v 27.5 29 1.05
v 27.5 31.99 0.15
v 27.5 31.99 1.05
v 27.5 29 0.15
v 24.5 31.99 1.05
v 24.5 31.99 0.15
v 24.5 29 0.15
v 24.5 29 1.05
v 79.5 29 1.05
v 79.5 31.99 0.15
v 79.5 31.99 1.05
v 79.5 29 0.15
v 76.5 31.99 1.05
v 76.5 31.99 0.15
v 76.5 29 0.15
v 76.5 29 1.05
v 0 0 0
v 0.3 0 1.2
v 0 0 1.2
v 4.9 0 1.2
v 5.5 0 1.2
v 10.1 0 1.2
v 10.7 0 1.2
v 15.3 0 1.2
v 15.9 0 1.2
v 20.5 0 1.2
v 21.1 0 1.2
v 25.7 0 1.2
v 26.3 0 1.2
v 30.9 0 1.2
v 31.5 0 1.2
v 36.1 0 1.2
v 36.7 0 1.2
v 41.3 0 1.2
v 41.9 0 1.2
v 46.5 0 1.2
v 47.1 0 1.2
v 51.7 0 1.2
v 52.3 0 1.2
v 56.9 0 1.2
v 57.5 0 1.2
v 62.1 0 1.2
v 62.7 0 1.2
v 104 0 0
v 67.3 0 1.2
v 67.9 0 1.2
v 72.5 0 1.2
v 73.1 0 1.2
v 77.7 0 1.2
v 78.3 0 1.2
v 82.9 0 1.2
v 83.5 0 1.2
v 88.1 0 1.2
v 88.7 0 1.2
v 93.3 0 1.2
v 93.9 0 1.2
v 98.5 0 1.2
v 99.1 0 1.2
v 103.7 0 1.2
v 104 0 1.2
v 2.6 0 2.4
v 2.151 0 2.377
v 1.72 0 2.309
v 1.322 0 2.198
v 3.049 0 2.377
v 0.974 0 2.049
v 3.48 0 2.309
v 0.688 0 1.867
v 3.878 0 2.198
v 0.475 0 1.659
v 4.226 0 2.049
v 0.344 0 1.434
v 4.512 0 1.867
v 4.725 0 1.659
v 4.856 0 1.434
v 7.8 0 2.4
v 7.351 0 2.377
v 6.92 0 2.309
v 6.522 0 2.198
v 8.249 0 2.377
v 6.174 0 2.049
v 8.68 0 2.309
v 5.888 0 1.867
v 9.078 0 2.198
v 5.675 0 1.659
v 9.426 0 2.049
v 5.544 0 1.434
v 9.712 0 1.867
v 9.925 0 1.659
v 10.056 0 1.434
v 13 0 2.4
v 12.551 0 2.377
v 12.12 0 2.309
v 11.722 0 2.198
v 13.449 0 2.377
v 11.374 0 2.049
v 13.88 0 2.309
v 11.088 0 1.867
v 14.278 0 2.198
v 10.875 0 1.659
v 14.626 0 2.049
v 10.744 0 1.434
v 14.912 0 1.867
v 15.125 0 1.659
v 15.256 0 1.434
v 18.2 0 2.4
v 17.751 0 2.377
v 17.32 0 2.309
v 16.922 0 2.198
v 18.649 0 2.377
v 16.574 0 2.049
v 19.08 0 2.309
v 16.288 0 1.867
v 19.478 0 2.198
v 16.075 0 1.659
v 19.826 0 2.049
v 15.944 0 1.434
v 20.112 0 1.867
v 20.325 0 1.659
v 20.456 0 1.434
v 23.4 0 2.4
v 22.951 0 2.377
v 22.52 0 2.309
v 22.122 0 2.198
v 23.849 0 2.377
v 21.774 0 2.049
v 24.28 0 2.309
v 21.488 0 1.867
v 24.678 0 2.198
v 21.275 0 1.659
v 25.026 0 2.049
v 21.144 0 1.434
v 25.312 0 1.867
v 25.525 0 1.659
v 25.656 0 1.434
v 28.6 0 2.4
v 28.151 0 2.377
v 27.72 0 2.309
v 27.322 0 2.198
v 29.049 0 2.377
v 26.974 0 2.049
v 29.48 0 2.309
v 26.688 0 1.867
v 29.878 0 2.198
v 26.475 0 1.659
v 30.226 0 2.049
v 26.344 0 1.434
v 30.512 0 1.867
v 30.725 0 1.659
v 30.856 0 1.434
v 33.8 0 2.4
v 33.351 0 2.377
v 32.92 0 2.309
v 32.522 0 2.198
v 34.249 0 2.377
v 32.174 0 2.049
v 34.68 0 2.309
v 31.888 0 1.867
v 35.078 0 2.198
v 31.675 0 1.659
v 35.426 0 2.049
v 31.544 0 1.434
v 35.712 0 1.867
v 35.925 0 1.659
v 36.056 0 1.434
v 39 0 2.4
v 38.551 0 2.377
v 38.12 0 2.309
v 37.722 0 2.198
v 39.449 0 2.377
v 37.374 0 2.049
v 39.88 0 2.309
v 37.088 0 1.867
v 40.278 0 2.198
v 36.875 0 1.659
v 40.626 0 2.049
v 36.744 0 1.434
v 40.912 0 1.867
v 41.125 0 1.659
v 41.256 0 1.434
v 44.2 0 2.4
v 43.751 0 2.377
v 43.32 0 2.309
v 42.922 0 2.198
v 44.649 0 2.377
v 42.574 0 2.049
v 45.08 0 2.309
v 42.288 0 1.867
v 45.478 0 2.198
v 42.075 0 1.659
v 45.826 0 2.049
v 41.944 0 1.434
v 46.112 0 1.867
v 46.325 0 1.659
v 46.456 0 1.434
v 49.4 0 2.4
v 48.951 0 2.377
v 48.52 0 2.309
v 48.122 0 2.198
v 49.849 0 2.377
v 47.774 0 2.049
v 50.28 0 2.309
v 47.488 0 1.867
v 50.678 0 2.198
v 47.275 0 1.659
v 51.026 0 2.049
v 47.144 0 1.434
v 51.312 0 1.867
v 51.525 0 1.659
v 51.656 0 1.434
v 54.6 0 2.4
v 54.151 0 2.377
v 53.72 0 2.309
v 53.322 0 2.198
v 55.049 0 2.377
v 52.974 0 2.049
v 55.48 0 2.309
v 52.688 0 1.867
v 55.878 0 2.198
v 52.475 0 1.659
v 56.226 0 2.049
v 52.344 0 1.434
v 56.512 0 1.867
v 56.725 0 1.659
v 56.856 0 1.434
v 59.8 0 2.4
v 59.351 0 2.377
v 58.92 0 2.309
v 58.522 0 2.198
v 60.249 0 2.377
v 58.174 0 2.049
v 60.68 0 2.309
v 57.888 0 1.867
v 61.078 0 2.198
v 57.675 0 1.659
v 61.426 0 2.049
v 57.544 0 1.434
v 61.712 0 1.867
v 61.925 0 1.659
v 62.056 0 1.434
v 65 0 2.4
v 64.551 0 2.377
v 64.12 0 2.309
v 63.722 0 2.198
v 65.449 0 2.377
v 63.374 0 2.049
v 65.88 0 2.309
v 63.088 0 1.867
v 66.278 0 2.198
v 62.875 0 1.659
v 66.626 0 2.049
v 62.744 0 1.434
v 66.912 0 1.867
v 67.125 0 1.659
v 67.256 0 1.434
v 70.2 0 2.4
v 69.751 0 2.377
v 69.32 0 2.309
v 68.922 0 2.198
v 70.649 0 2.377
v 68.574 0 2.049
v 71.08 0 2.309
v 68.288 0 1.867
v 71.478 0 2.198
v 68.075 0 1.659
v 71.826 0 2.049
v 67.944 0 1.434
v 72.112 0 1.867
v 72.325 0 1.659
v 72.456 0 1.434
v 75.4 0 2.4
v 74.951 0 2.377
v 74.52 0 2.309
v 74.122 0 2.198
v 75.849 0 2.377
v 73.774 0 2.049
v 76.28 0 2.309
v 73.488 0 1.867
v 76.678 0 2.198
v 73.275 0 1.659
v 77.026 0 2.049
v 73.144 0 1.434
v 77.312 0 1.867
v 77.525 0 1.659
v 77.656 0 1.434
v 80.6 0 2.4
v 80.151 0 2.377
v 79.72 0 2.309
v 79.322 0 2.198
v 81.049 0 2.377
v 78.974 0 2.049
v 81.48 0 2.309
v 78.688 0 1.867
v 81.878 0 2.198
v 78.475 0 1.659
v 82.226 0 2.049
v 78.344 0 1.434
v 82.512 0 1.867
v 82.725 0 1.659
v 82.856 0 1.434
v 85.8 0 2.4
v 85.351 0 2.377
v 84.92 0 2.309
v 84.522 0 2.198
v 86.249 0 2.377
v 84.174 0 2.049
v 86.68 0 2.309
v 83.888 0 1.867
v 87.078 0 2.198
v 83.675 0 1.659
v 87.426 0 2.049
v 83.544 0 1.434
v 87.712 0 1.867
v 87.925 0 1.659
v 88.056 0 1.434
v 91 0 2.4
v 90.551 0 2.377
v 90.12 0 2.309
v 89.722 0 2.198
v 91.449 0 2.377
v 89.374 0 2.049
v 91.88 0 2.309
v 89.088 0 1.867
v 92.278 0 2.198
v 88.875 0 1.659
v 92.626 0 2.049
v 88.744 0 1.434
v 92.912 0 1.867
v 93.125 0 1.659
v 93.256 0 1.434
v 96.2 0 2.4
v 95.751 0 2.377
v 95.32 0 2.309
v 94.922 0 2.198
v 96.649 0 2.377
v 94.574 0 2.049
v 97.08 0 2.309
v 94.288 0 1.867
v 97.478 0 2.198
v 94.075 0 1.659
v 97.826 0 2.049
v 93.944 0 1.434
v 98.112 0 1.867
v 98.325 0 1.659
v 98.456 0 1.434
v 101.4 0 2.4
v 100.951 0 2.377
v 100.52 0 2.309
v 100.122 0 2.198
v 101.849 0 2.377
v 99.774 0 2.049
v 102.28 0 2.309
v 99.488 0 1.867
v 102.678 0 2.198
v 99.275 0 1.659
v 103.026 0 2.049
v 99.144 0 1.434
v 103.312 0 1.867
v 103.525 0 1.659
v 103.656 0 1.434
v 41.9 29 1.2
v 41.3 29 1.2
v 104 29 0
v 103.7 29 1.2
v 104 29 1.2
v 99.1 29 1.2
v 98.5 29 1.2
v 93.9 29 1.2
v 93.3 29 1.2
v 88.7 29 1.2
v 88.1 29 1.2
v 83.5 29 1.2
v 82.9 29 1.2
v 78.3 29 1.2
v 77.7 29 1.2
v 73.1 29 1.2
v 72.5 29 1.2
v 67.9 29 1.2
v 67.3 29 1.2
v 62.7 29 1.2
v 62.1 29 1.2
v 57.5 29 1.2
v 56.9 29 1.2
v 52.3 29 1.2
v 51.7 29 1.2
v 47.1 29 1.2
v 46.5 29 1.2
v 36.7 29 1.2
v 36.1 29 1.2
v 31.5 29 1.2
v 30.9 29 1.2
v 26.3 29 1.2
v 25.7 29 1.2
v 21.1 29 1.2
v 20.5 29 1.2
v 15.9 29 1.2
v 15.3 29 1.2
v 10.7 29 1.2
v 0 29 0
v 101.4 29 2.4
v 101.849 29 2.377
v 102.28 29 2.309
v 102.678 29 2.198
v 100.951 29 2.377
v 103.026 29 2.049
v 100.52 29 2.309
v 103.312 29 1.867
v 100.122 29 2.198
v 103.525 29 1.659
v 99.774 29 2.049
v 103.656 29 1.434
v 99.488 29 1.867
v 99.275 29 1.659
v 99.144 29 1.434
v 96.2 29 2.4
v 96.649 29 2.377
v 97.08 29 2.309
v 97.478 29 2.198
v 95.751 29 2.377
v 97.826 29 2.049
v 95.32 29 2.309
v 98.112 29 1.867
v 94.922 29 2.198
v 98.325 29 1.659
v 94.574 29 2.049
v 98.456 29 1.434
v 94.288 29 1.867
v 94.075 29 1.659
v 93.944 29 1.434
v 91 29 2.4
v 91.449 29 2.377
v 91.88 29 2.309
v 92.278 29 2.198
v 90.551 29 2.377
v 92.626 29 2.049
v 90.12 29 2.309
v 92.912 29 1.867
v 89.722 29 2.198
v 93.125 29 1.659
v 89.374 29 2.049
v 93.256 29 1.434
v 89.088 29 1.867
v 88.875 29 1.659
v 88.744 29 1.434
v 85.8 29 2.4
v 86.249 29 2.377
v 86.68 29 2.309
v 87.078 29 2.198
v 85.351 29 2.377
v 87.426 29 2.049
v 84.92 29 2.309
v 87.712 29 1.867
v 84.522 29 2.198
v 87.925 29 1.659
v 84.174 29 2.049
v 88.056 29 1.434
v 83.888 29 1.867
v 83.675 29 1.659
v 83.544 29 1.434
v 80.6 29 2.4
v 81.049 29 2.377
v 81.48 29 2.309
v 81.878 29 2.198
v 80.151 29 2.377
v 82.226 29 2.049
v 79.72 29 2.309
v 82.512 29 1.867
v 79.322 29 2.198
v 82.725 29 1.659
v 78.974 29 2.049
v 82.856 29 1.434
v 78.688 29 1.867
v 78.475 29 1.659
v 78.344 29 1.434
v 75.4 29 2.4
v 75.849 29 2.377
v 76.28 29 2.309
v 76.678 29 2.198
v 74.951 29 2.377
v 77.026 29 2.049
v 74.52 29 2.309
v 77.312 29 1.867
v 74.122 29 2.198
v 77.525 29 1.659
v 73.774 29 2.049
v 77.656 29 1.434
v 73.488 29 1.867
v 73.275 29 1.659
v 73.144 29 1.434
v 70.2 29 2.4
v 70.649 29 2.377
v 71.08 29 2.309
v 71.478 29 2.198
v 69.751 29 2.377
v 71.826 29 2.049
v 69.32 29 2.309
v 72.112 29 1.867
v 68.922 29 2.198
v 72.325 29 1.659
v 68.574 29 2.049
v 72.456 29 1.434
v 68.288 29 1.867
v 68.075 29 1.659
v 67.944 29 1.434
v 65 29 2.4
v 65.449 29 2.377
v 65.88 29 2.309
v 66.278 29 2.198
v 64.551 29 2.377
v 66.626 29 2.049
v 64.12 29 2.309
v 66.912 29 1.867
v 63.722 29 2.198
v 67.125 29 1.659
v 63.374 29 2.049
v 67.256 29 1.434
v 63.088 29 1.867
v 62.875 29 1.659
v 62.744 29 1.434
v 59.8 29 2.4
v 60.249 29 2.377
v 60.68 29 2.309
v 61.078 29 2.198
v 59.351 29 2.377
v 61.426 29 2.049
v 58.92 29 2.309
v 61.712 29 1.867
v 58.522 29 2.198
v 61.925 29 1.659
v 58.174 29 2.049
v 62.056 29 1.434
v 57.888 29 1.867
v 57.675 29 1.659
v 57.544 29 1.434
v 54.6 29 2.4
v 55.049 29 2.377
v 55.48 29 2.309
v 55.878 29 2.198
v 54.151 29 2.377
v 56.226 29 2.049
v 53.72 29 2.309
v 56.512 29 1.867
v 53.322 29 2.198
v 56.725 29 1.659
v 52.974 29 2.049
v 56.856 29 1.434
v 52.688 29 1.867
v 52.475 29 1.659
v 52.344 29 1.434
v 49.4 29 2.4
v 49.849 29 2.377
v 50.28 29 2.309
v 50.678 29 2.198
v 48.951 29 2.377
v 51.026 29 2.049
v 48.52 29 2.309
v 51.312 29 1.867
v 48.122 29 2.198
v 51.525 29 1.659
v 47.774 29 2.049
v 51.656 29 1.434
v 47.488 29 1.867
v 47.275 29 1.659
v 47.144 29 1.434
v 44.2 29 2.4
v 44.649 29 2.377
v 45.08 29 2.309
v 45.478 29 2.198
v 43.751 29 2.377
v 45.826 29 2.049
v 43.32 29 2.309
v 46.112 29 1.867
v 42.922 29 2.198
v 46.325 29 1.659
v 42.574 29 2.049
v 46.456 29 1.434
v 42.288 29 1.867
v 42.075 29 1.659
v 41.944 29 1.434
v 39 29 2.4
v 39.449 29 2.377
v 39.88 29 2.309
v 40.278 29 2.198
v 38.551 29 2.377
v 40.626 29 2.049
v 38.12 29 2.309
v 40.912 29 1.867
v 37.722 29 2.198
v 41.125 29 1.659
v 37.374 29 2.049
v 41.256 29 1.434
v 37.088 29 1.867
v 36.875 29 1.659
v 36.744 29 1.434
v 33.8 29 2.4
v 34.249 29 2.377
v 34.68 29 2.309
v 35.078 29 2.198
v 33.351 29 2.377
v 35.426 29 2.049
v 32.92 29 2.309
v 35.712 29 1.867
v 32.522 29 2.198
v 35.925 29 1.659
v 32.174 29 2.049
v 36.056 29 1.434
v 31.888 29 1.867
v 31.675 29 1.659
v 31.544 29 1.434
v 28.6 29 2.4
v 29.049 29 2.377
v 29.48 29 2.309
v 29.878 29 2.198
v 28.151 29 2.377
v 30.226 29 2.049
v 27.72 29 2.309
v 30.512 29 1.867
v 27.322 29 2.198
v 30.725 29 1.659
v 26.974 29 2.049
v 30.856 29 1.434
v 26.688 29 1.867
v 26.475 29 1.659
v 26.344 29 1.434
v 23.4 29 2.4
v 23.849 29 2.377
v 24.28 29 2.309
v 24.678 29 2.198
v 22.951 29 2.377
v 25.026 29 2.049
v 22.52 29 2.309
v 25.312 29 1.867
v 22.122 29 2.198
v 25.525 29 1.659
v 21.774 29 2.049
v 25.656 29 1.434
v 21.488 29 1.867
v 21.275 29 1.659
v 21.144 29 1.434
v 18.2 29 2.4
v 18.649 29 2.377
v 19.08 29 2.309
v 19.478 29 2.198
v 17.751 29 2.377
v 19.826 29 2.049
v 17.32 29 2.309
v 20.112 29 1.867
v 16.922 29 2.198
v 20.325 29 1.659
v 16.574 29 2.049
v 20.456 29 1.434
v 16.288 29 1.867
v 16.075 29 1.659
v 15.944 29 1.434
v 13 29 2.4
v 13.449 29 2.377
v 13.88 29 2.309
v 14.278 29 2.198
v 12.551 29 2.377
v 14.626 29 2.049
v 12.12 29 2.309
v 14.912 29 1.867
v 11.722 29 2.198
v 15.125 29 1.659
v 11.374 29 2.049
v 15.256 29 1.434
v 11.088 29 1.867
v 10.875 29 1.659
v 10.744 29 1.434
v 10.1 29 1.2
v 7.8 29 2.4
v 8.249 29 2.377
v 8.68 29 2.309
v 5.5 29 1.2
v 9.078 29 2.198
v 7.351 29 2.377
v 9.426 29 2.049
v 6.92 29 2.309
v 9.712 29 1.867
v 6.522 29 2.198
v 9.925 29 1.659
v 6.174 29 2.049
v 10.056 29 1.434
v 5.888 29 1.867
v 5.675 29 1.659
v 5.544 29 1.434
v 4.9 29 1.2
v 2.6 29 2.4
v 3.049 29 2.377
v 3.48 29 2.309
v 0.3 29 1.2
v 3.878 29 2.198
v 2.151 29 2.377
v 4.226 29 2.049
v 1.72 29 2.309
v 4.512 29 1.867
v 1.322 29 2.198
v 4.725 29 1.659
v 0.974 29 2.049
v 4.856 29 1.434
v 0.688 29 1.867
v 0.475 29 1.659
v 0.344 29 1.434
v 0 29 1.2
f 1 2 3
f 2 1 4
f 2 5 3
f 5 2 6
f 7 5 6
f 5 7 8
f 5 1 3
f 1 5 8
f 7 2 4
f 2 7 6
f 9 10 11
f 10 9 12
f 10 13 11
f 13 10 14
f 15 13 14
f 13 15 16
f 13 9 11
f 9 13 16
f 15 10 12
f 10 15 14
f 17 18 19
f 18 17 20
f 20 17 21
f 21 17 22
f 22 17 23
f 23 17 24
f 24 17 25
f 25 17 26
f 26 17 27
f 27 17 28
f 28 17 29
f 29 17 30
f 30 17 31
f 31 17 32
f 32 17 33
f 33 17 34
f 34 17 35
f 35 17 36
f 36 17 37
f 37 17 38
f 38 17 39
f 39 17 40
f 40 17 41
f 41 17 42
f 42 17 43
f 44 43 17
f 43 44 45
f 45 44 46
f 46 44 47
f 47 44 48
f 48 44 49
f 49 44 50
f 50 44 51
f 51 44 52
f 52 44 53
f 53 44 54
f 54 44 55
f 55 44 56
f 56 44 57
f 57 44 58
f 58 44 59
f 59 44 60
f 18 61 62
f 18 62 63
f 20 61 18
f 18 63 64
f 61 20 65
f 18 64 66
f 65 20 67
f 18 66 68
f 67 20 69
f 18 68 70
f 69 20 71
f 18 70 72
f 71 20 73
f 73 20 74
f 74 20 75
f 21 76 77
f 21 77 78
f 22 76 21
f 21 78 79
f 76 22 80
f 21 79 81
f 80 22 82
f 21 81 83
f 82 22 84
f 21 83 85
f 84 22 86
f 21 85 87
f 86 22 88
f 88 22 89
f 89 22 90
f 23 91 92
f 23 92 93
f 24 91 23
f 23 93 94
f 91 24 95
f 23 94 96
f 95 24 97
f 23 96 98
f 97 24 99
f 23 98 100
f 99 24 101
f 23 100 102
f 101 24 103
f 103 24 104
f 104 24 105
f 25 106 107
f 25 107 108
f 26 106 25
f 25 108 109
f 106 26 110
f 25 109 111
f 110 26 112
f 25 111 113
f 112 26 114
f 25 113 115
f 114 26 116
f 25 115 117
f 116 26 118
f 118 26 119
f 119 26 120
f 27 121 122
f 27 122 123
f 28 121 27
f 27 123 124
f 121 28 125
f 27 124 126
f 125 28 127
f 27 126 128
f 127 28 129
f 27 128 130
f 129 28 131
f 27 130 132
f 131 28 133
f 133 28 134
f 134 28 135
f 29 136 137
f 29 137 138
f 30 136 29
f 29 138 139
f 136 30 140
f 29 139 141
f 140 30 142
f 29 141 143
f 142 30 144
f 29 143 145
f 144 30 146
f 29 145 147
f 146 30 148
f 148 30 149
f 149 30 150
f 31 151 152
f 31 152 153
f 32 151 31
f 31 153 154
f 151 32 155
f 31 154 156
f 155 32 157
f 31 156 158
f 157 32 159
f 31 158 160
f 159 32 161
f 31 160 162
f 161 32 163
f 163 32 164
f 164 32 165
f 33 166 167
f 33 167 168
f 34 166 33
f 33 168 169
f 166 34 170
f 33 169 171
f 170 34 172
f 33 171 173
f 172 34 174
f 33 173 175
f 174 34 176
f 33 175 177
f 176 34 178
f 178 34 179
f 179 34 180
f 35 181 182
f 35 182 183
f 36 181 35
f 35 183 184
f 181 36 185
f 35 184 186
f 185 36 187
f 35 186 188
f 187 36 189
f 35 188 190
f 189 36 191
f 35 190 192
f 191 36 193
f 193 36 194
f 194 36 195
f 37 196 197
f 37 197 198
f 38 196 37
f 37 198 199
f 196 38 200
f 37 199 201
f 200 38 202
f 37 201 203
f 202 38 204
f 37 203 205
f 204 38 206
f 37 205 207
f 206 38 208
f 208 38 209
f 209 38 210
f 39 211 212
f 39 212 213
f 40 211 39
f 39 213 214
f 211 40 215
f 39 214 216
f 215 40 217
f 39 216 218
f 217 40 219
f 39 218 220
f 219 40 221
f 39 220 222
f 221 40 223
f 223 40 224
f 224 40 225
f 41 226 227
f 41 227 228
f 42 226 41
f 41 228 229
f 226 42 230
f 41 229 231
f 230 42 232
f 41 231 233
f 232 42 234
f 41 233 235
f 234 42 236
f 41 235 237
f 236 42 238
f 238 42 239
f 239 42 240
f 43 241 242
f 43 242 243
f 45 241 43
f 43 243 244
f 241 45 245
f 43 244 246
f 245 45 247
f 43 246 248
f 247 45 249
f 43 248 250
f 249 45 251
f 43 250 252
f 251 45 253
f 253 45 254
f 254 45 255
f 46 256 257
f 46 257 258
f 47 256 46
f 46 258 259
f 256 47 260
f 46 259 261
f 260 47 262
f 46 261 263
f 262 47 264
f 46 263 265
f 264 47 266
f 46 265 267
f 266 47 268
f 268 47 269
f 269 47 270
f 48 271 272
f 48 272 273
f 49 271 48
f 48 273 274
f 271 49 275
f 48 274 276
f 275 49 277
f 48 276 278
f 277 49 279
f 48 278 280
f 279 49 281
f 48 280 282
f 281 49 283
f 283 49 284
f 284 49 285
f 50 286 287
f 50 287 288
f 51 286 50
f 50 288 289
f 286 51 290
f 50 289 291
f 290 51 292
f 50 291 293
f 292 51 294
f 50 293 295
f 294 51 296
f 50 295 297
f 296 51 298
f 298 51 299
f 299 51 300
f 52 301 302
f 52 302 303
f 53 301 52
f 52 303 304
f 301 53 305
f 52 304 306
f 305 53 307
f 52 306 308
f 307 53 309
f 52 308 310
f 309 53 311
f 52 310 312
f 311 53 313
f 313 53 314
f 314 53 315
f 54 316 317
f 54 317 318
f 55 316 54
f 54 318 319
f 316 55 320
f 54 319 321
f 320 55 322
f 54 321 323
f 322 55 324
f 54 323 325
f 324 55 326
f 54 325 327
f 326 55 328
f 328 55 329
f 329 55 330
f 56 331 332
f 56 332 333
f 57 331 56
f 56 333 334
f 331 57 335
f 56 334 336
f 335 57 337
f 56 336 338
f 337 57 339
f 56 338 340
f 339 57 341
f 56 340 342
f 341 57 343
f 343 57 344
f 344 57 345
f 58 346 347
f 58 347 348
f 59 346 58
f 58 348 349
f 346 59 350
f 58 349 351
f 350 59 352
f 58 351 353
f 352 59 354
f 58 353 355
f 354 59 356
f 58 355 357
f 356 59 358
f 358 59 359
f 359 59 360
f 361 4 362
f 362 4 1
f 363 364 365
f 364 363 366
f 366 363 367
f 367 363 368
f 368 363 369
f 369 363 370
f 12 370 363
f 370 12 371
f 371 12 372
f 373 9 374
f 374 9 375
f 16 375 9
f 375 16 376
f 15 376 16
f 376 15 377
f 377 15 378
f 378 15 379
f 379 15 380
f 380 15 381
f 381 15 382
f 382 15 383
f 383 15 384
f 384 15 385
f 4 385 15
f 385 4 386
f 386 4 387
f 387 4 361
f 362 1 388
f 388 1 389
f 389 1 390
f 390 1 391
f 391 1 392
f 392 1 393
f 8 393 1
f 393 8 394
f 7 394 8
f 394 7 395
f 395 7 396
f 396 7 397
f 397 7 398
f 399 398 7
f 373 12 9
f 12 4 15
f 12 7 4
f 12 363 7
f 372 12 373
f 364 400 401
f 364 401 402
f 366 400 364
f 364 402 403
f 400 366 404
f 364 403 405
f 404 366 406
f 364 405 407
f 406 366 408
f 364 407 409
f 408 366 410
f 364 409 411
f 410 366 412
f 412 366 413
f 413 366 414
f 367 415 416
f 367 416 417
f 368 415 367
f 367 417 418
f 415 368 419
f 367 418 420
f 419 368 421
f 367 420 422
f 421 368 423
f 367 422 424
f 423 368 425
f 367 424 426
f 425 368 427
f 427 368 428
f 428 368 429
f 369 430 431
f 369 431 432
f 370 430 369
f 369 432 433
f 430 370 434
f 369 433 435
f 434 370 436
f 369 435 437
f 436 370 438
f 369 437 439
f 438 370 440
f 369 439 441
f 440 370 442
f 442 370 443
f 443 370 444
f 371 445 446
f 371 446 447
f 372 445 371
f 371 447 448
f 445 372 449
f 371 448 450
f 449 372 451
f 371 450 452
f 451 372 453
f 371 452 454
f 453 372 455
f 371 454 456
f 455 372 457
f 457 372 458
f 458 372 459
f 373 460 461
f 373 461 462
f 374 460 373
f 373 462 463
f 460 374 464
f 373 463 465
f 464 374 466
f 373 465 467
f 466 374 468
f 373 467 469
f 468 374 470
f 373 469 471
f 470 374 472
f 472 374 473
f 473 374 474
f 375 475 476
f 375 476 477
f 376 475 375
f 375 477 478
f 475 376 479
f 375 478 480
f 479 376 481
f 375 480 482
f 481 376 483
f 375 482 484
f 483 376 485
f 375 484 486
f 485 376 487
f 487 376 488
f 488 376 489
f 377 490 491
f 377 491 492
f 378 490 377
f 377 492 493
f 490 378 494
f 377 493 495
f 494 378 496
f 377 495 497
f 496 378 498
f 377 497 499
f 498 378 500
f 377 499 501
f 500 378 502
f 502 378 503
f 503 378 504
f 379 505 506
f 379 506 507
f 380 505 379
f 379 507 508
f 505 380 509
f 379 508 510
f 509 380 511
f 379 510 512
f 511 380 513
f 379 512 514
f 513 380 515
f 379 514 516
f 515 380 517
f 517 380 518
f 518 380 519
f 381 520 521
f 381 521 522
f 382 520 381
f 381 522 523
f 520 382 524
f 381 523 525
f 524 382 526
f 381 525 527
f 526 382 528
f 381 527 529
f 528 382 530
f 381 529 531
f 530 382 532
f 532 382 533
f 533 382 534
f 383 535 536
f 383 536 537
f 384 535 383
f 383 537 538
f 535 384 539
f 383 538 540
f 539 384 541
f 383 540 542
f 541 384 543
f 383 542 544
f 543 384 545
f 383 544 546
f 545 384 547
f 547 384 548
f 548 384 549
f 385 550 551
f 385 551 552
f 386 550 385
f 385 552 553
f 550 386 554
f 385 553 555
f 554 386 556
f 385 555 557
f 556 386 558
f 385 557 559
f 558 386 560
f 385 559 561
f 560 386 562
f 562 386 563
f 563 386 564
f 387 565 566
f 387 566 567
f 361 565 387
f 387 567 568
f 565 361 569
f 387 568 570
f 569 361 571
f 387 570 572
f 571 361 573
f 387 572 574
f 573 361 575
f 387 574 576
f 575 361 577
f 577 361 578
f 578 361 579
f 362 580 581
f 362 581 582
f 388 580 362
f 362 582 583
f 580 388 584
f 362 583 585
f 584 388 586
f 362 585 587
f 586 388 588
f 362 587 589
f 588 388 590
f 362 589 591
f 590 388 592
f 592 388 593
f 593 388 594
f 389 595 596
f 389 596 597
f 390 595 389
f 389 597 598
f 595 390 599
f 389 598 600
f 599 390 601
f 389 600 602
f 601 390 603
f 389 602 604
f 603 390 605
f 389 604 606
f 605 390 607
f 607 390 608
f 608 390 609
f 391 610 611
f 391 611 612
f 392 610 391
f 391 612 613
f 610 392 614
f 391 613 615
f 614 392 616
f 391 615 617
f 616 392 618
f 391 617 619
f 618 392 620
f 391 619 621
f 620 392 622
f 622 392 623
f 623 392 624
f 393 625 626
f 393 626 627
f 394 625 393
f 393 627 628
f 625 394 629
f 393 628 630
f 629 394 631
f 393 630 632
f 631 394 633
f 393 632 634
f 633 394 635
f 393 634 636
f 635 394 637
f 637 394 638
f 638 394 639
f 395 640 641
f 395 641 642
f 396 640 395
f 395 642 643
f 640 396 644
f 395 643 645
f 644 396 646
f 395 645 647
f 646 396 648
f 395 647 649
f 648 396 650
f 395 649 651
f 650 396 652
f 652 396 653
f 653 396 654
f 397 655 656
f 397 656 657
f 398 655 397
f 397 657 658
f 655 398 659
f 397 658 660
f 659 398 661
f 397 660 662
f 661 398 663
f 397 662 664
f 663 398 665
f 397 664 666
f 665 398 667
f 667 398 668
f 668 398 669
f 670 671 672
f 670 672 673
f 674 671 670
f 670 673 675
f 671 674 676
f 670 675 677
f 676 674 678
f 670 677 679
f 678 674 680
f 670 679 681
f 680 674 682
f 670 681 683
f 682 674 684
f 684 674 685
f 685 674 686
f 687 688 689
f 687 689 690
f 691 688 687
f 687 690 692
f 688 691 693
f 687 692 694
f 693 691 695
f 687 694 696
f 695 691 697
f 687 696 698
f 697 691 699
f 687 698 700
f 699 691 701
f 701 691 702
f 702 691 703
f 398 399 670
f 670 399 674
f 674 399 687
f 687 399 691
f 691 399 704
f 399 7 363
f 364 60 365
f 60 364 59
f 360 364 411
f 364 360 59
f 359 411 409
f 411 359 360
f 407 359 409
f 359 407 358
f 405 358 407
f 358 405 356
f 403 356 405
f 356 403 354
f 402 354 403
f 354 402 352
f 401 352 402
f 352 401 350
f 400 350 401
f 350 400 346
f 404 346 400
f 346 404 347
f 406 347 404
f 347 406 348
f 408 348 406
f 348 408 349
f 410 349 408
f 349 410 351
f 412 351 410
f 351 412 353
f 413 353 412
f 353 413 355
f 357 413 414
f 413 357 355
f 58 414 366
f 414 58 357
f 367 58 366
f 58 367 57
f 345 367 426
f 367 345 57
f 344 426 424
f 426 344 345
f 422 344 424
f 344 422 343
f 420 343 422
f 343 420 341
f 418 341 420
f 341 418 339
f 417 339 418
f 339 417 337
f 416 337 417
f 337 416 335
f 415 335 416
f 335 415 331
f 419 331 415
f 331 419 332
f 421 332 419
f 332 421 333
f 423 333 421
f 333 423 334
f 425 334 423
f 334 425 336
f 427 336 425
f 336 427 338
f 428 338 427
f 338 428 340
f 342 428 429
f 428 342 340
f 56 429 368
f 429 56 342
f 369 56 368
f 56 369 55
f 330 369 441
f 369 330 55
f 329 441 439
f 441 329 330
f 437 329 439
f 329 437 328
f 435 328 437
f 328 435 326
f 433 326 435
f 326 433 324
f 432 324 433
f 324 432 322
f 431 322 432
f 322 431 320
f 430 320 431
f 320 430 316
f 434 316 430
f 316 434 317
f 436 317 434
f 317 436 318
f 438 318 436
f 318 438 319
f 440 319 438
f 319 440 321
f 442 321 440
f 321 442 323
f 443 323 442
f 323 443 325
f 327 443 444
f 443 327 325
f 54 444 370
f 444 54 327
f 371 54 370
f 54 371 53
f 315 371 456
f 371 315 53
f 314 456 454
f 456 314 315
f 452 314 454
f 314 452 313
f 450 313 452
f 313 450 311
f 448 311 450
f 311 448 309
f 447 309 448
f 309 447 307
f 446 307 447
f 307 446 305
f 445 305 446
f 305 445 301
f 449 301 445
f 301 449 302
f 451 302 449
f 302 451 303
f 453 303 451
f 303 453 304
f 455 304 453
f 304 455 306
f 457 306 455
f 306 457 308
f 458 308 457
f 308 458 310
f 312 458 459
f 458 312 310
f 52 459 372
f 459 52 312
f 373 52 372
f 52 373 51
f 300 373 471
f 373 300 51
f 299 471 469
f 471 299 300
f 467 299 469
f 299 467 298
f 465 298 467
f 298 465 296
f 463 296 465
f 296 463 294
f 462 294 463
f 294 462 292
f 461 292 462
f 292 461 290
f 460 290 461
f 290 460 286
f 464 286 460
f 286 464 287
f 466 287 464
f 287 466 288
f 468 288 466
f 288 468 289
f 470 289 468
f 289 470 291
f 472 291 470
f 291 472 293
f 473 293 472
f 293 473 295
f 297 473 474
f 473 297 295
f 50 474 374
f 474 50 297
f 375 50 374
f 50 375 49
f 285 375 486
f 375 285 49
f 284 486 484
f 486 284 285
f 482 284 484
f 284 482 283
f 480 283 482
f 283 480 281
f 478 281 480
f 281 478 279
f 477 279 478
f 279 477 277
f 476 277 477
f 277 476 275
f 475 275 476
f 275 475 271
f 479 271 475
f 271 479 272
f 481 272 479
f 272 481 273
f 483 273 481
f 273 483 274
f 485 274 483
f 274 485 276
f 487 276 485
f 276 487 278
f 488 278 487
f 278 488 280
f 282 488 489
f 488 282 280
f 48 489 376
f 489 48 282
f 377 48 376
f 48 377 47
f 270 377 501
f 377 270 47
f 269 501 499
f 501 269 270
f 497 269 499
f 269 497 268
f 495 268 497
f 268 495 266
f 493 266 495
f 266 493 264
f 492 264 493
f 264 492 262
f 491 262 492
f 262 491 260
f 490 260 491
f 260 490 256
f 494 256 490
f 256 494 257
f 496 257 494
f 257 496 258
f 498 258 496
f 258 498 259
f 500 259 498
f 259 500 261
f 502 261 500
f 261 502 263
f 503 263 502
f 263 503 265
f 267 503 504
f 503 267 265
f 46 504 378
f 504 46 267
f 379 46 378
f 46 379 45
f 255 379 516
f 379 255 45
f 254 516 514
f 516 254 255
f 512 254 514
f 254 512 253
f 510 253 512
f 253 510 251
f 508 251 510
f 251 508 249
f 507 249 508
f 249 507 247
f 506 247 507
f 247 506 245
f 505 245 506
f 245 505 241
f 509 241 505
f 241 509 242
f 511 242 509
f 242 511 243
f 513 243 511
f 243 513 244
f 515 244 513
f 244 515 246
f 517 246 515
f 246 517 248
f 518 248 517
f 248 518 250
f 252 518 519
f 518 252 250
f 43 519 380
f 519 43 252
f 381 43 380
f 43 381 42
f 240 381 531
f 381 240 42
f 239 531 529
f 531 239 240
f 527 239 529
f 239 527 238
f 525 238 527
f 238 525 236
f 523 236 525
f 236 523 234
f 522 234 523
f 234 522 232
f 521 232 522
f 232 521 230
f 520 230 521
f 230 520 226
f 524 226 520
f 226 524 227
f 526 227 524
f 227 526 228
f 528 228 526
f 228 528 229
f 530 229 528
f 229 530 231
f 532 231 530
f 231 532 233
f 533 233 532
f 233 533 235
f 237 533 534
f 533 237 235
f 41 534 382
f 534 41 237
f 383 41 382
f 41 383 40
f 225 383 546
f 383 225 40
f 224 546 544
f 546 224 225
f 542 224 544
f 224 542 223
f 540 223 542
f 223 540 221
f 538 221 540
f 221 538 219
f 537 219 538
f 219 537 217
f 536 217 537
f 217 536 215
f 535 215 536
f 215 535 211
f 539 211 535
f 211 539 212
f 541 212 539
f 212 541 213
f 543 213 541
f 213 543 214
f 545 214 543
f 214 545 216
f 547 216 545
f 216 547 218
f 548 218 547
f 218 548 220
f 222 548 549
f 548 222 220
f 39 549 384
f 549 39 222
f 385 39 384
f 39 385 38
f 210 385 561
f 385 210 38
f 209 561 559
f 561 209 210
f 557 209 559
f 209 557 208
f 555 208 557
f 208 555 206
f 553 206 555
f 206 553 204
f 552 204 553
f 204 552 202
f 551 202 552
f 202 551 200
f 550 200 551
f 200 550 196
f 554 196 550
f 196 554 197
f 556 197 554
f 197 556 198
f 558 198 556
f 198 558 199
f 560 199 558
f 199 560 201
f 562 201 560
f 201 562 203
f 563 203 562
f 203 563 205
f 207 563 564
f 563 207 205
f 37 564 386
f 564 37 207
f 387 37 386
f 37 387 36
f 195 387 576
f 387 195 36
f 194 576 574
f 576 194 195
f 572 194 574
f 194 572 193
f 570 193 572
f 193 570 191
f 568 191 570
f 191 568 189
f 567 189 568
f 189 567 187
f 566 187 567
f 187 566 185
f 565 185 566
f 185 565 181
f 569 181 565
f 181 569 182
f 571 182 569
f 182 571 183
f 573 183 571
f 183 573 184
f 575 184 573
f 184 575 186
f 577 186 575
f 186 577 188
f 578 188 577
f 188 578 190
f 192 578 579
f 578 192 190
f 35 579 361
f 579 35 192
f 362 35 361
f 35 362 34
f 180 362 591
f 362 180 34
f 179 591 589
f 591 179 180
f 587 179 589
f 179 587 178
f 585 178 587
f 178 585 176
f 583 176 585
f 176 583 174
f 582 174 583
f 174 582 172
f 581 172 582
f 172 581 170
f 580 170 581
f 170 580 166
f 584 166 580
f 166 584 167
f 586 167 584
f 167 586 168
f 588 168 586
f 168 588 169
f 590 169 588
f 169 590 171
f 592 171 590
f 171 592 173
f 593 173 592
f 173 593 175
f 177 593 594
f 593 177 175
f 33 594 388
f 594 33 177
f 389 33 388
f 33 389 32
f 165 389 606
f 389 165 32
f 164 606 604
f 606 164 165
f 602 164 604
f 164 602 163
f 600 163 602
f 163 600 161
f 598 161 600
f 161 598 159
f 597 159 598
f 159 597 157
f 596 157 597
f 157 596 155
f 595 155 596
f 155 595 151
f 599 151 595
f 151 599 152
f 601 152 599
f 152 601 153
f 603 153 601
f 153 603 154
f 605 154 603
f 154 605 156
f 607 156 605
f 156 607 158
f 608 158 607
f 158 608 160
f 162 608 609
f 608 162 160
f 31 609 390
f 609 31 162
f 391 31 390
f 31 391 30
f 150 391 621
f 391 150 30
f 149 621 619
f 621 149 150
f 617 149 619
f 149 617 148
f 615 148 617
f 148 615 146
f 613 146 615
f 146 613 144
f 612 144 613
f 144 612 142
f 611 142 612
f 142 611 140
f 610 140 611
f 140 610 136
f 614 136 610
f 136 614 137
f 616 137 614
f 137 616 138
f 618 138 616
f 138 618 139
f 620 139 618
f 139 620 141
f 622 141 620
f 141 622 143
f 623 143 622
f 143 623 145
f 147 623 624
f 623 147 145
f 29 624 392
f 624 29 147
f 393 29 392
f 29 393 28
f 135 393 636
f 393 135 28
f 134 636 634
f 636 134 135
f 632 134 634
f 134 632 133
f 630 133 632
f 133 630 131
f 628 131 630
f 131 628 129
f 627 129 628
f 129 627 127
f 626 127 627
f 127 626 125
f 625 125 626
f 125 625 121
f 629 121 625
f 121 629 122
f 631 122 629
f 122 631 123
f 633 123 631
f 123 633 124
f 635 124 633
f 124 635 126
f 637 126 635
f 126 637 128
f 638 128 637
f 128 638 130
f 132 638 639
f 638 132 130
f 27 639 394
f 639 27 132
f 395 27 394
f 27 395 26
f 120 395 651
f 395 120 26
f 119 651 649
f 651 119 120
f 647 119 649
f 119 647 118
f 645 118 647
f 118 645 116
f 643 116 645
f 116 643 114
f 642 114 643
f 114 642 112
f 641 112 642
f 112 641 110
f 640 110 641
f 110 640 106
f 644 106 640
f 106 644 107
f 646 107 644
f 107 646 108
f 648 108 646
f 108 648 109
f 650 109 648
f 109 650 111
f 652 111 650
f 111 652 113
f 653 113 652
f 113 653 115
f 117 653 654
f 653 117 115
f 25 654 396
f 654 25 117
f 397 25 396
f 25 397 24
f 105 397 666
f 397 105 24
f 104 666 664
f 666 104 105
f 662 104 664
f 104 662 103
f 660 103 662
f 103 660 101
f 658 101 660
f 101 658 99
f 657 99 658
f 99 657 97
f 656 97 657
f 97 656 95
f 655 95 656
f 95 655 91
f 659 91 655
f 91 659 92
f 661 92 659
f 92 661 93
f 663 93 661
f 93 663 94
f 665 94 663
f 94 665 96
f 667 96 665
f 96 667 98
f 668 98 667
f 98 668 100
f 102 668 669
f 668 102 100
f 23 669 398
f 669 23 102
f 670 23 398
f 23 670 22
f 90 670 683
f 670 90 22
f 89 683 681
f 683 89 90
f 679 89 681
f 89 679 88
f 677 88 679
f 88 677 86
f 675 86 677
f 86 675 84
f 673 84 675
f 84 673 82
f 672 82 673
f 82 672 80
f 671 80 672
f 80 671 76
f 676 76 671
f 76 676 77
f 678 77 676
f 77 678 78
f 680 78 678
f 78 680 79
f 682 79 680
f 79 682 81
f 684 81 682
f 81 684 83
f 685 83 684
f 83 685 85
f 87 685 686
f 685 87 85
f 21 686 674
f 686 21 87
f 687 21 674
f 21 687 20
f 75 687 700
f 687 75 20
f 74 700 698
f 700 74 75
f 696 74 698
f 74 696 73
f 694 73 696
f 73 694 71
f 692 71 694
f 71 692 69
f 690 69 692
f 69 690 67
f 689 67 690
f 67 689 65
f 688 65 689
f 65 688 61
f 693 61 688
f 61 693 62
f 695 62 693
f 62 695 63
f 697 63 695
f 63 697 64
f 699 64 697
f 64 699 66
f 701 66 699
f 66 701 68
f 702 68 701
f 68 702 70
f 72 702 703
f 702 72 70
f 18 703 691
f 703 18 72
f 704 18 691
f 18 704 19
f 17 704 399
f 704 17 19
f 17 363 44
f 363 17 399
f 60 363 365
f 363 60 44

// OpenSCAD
// Left_Wall_Panel_Lower.stl  -  Store Versile room frame (Rev C)
// Quantity: 1   Filament: Peach-beige (e.g. Bambu PLA Matte Desert Tan / Latte Brown, or PLA Sparkle for shimmer)
// Print: layer 0.16 mm, infill 15%, 2 walls, brim 0 mm, NO supports
// Orientation: back  (lying on its back, front face up)
// Notes: Flutes up. Seam is hidden behind the TV console.
// The library draws parts with their front toward +Y; mirror([0,1,0]) makes the real
// part face the viewer correctly (see build.py). Edit dimensions in versile_parts.scad.
use <../versile_parts.scad>

rotate([-90, 0, 0]) mirror([0, 1, 0]) wall_panel_lower(104);
